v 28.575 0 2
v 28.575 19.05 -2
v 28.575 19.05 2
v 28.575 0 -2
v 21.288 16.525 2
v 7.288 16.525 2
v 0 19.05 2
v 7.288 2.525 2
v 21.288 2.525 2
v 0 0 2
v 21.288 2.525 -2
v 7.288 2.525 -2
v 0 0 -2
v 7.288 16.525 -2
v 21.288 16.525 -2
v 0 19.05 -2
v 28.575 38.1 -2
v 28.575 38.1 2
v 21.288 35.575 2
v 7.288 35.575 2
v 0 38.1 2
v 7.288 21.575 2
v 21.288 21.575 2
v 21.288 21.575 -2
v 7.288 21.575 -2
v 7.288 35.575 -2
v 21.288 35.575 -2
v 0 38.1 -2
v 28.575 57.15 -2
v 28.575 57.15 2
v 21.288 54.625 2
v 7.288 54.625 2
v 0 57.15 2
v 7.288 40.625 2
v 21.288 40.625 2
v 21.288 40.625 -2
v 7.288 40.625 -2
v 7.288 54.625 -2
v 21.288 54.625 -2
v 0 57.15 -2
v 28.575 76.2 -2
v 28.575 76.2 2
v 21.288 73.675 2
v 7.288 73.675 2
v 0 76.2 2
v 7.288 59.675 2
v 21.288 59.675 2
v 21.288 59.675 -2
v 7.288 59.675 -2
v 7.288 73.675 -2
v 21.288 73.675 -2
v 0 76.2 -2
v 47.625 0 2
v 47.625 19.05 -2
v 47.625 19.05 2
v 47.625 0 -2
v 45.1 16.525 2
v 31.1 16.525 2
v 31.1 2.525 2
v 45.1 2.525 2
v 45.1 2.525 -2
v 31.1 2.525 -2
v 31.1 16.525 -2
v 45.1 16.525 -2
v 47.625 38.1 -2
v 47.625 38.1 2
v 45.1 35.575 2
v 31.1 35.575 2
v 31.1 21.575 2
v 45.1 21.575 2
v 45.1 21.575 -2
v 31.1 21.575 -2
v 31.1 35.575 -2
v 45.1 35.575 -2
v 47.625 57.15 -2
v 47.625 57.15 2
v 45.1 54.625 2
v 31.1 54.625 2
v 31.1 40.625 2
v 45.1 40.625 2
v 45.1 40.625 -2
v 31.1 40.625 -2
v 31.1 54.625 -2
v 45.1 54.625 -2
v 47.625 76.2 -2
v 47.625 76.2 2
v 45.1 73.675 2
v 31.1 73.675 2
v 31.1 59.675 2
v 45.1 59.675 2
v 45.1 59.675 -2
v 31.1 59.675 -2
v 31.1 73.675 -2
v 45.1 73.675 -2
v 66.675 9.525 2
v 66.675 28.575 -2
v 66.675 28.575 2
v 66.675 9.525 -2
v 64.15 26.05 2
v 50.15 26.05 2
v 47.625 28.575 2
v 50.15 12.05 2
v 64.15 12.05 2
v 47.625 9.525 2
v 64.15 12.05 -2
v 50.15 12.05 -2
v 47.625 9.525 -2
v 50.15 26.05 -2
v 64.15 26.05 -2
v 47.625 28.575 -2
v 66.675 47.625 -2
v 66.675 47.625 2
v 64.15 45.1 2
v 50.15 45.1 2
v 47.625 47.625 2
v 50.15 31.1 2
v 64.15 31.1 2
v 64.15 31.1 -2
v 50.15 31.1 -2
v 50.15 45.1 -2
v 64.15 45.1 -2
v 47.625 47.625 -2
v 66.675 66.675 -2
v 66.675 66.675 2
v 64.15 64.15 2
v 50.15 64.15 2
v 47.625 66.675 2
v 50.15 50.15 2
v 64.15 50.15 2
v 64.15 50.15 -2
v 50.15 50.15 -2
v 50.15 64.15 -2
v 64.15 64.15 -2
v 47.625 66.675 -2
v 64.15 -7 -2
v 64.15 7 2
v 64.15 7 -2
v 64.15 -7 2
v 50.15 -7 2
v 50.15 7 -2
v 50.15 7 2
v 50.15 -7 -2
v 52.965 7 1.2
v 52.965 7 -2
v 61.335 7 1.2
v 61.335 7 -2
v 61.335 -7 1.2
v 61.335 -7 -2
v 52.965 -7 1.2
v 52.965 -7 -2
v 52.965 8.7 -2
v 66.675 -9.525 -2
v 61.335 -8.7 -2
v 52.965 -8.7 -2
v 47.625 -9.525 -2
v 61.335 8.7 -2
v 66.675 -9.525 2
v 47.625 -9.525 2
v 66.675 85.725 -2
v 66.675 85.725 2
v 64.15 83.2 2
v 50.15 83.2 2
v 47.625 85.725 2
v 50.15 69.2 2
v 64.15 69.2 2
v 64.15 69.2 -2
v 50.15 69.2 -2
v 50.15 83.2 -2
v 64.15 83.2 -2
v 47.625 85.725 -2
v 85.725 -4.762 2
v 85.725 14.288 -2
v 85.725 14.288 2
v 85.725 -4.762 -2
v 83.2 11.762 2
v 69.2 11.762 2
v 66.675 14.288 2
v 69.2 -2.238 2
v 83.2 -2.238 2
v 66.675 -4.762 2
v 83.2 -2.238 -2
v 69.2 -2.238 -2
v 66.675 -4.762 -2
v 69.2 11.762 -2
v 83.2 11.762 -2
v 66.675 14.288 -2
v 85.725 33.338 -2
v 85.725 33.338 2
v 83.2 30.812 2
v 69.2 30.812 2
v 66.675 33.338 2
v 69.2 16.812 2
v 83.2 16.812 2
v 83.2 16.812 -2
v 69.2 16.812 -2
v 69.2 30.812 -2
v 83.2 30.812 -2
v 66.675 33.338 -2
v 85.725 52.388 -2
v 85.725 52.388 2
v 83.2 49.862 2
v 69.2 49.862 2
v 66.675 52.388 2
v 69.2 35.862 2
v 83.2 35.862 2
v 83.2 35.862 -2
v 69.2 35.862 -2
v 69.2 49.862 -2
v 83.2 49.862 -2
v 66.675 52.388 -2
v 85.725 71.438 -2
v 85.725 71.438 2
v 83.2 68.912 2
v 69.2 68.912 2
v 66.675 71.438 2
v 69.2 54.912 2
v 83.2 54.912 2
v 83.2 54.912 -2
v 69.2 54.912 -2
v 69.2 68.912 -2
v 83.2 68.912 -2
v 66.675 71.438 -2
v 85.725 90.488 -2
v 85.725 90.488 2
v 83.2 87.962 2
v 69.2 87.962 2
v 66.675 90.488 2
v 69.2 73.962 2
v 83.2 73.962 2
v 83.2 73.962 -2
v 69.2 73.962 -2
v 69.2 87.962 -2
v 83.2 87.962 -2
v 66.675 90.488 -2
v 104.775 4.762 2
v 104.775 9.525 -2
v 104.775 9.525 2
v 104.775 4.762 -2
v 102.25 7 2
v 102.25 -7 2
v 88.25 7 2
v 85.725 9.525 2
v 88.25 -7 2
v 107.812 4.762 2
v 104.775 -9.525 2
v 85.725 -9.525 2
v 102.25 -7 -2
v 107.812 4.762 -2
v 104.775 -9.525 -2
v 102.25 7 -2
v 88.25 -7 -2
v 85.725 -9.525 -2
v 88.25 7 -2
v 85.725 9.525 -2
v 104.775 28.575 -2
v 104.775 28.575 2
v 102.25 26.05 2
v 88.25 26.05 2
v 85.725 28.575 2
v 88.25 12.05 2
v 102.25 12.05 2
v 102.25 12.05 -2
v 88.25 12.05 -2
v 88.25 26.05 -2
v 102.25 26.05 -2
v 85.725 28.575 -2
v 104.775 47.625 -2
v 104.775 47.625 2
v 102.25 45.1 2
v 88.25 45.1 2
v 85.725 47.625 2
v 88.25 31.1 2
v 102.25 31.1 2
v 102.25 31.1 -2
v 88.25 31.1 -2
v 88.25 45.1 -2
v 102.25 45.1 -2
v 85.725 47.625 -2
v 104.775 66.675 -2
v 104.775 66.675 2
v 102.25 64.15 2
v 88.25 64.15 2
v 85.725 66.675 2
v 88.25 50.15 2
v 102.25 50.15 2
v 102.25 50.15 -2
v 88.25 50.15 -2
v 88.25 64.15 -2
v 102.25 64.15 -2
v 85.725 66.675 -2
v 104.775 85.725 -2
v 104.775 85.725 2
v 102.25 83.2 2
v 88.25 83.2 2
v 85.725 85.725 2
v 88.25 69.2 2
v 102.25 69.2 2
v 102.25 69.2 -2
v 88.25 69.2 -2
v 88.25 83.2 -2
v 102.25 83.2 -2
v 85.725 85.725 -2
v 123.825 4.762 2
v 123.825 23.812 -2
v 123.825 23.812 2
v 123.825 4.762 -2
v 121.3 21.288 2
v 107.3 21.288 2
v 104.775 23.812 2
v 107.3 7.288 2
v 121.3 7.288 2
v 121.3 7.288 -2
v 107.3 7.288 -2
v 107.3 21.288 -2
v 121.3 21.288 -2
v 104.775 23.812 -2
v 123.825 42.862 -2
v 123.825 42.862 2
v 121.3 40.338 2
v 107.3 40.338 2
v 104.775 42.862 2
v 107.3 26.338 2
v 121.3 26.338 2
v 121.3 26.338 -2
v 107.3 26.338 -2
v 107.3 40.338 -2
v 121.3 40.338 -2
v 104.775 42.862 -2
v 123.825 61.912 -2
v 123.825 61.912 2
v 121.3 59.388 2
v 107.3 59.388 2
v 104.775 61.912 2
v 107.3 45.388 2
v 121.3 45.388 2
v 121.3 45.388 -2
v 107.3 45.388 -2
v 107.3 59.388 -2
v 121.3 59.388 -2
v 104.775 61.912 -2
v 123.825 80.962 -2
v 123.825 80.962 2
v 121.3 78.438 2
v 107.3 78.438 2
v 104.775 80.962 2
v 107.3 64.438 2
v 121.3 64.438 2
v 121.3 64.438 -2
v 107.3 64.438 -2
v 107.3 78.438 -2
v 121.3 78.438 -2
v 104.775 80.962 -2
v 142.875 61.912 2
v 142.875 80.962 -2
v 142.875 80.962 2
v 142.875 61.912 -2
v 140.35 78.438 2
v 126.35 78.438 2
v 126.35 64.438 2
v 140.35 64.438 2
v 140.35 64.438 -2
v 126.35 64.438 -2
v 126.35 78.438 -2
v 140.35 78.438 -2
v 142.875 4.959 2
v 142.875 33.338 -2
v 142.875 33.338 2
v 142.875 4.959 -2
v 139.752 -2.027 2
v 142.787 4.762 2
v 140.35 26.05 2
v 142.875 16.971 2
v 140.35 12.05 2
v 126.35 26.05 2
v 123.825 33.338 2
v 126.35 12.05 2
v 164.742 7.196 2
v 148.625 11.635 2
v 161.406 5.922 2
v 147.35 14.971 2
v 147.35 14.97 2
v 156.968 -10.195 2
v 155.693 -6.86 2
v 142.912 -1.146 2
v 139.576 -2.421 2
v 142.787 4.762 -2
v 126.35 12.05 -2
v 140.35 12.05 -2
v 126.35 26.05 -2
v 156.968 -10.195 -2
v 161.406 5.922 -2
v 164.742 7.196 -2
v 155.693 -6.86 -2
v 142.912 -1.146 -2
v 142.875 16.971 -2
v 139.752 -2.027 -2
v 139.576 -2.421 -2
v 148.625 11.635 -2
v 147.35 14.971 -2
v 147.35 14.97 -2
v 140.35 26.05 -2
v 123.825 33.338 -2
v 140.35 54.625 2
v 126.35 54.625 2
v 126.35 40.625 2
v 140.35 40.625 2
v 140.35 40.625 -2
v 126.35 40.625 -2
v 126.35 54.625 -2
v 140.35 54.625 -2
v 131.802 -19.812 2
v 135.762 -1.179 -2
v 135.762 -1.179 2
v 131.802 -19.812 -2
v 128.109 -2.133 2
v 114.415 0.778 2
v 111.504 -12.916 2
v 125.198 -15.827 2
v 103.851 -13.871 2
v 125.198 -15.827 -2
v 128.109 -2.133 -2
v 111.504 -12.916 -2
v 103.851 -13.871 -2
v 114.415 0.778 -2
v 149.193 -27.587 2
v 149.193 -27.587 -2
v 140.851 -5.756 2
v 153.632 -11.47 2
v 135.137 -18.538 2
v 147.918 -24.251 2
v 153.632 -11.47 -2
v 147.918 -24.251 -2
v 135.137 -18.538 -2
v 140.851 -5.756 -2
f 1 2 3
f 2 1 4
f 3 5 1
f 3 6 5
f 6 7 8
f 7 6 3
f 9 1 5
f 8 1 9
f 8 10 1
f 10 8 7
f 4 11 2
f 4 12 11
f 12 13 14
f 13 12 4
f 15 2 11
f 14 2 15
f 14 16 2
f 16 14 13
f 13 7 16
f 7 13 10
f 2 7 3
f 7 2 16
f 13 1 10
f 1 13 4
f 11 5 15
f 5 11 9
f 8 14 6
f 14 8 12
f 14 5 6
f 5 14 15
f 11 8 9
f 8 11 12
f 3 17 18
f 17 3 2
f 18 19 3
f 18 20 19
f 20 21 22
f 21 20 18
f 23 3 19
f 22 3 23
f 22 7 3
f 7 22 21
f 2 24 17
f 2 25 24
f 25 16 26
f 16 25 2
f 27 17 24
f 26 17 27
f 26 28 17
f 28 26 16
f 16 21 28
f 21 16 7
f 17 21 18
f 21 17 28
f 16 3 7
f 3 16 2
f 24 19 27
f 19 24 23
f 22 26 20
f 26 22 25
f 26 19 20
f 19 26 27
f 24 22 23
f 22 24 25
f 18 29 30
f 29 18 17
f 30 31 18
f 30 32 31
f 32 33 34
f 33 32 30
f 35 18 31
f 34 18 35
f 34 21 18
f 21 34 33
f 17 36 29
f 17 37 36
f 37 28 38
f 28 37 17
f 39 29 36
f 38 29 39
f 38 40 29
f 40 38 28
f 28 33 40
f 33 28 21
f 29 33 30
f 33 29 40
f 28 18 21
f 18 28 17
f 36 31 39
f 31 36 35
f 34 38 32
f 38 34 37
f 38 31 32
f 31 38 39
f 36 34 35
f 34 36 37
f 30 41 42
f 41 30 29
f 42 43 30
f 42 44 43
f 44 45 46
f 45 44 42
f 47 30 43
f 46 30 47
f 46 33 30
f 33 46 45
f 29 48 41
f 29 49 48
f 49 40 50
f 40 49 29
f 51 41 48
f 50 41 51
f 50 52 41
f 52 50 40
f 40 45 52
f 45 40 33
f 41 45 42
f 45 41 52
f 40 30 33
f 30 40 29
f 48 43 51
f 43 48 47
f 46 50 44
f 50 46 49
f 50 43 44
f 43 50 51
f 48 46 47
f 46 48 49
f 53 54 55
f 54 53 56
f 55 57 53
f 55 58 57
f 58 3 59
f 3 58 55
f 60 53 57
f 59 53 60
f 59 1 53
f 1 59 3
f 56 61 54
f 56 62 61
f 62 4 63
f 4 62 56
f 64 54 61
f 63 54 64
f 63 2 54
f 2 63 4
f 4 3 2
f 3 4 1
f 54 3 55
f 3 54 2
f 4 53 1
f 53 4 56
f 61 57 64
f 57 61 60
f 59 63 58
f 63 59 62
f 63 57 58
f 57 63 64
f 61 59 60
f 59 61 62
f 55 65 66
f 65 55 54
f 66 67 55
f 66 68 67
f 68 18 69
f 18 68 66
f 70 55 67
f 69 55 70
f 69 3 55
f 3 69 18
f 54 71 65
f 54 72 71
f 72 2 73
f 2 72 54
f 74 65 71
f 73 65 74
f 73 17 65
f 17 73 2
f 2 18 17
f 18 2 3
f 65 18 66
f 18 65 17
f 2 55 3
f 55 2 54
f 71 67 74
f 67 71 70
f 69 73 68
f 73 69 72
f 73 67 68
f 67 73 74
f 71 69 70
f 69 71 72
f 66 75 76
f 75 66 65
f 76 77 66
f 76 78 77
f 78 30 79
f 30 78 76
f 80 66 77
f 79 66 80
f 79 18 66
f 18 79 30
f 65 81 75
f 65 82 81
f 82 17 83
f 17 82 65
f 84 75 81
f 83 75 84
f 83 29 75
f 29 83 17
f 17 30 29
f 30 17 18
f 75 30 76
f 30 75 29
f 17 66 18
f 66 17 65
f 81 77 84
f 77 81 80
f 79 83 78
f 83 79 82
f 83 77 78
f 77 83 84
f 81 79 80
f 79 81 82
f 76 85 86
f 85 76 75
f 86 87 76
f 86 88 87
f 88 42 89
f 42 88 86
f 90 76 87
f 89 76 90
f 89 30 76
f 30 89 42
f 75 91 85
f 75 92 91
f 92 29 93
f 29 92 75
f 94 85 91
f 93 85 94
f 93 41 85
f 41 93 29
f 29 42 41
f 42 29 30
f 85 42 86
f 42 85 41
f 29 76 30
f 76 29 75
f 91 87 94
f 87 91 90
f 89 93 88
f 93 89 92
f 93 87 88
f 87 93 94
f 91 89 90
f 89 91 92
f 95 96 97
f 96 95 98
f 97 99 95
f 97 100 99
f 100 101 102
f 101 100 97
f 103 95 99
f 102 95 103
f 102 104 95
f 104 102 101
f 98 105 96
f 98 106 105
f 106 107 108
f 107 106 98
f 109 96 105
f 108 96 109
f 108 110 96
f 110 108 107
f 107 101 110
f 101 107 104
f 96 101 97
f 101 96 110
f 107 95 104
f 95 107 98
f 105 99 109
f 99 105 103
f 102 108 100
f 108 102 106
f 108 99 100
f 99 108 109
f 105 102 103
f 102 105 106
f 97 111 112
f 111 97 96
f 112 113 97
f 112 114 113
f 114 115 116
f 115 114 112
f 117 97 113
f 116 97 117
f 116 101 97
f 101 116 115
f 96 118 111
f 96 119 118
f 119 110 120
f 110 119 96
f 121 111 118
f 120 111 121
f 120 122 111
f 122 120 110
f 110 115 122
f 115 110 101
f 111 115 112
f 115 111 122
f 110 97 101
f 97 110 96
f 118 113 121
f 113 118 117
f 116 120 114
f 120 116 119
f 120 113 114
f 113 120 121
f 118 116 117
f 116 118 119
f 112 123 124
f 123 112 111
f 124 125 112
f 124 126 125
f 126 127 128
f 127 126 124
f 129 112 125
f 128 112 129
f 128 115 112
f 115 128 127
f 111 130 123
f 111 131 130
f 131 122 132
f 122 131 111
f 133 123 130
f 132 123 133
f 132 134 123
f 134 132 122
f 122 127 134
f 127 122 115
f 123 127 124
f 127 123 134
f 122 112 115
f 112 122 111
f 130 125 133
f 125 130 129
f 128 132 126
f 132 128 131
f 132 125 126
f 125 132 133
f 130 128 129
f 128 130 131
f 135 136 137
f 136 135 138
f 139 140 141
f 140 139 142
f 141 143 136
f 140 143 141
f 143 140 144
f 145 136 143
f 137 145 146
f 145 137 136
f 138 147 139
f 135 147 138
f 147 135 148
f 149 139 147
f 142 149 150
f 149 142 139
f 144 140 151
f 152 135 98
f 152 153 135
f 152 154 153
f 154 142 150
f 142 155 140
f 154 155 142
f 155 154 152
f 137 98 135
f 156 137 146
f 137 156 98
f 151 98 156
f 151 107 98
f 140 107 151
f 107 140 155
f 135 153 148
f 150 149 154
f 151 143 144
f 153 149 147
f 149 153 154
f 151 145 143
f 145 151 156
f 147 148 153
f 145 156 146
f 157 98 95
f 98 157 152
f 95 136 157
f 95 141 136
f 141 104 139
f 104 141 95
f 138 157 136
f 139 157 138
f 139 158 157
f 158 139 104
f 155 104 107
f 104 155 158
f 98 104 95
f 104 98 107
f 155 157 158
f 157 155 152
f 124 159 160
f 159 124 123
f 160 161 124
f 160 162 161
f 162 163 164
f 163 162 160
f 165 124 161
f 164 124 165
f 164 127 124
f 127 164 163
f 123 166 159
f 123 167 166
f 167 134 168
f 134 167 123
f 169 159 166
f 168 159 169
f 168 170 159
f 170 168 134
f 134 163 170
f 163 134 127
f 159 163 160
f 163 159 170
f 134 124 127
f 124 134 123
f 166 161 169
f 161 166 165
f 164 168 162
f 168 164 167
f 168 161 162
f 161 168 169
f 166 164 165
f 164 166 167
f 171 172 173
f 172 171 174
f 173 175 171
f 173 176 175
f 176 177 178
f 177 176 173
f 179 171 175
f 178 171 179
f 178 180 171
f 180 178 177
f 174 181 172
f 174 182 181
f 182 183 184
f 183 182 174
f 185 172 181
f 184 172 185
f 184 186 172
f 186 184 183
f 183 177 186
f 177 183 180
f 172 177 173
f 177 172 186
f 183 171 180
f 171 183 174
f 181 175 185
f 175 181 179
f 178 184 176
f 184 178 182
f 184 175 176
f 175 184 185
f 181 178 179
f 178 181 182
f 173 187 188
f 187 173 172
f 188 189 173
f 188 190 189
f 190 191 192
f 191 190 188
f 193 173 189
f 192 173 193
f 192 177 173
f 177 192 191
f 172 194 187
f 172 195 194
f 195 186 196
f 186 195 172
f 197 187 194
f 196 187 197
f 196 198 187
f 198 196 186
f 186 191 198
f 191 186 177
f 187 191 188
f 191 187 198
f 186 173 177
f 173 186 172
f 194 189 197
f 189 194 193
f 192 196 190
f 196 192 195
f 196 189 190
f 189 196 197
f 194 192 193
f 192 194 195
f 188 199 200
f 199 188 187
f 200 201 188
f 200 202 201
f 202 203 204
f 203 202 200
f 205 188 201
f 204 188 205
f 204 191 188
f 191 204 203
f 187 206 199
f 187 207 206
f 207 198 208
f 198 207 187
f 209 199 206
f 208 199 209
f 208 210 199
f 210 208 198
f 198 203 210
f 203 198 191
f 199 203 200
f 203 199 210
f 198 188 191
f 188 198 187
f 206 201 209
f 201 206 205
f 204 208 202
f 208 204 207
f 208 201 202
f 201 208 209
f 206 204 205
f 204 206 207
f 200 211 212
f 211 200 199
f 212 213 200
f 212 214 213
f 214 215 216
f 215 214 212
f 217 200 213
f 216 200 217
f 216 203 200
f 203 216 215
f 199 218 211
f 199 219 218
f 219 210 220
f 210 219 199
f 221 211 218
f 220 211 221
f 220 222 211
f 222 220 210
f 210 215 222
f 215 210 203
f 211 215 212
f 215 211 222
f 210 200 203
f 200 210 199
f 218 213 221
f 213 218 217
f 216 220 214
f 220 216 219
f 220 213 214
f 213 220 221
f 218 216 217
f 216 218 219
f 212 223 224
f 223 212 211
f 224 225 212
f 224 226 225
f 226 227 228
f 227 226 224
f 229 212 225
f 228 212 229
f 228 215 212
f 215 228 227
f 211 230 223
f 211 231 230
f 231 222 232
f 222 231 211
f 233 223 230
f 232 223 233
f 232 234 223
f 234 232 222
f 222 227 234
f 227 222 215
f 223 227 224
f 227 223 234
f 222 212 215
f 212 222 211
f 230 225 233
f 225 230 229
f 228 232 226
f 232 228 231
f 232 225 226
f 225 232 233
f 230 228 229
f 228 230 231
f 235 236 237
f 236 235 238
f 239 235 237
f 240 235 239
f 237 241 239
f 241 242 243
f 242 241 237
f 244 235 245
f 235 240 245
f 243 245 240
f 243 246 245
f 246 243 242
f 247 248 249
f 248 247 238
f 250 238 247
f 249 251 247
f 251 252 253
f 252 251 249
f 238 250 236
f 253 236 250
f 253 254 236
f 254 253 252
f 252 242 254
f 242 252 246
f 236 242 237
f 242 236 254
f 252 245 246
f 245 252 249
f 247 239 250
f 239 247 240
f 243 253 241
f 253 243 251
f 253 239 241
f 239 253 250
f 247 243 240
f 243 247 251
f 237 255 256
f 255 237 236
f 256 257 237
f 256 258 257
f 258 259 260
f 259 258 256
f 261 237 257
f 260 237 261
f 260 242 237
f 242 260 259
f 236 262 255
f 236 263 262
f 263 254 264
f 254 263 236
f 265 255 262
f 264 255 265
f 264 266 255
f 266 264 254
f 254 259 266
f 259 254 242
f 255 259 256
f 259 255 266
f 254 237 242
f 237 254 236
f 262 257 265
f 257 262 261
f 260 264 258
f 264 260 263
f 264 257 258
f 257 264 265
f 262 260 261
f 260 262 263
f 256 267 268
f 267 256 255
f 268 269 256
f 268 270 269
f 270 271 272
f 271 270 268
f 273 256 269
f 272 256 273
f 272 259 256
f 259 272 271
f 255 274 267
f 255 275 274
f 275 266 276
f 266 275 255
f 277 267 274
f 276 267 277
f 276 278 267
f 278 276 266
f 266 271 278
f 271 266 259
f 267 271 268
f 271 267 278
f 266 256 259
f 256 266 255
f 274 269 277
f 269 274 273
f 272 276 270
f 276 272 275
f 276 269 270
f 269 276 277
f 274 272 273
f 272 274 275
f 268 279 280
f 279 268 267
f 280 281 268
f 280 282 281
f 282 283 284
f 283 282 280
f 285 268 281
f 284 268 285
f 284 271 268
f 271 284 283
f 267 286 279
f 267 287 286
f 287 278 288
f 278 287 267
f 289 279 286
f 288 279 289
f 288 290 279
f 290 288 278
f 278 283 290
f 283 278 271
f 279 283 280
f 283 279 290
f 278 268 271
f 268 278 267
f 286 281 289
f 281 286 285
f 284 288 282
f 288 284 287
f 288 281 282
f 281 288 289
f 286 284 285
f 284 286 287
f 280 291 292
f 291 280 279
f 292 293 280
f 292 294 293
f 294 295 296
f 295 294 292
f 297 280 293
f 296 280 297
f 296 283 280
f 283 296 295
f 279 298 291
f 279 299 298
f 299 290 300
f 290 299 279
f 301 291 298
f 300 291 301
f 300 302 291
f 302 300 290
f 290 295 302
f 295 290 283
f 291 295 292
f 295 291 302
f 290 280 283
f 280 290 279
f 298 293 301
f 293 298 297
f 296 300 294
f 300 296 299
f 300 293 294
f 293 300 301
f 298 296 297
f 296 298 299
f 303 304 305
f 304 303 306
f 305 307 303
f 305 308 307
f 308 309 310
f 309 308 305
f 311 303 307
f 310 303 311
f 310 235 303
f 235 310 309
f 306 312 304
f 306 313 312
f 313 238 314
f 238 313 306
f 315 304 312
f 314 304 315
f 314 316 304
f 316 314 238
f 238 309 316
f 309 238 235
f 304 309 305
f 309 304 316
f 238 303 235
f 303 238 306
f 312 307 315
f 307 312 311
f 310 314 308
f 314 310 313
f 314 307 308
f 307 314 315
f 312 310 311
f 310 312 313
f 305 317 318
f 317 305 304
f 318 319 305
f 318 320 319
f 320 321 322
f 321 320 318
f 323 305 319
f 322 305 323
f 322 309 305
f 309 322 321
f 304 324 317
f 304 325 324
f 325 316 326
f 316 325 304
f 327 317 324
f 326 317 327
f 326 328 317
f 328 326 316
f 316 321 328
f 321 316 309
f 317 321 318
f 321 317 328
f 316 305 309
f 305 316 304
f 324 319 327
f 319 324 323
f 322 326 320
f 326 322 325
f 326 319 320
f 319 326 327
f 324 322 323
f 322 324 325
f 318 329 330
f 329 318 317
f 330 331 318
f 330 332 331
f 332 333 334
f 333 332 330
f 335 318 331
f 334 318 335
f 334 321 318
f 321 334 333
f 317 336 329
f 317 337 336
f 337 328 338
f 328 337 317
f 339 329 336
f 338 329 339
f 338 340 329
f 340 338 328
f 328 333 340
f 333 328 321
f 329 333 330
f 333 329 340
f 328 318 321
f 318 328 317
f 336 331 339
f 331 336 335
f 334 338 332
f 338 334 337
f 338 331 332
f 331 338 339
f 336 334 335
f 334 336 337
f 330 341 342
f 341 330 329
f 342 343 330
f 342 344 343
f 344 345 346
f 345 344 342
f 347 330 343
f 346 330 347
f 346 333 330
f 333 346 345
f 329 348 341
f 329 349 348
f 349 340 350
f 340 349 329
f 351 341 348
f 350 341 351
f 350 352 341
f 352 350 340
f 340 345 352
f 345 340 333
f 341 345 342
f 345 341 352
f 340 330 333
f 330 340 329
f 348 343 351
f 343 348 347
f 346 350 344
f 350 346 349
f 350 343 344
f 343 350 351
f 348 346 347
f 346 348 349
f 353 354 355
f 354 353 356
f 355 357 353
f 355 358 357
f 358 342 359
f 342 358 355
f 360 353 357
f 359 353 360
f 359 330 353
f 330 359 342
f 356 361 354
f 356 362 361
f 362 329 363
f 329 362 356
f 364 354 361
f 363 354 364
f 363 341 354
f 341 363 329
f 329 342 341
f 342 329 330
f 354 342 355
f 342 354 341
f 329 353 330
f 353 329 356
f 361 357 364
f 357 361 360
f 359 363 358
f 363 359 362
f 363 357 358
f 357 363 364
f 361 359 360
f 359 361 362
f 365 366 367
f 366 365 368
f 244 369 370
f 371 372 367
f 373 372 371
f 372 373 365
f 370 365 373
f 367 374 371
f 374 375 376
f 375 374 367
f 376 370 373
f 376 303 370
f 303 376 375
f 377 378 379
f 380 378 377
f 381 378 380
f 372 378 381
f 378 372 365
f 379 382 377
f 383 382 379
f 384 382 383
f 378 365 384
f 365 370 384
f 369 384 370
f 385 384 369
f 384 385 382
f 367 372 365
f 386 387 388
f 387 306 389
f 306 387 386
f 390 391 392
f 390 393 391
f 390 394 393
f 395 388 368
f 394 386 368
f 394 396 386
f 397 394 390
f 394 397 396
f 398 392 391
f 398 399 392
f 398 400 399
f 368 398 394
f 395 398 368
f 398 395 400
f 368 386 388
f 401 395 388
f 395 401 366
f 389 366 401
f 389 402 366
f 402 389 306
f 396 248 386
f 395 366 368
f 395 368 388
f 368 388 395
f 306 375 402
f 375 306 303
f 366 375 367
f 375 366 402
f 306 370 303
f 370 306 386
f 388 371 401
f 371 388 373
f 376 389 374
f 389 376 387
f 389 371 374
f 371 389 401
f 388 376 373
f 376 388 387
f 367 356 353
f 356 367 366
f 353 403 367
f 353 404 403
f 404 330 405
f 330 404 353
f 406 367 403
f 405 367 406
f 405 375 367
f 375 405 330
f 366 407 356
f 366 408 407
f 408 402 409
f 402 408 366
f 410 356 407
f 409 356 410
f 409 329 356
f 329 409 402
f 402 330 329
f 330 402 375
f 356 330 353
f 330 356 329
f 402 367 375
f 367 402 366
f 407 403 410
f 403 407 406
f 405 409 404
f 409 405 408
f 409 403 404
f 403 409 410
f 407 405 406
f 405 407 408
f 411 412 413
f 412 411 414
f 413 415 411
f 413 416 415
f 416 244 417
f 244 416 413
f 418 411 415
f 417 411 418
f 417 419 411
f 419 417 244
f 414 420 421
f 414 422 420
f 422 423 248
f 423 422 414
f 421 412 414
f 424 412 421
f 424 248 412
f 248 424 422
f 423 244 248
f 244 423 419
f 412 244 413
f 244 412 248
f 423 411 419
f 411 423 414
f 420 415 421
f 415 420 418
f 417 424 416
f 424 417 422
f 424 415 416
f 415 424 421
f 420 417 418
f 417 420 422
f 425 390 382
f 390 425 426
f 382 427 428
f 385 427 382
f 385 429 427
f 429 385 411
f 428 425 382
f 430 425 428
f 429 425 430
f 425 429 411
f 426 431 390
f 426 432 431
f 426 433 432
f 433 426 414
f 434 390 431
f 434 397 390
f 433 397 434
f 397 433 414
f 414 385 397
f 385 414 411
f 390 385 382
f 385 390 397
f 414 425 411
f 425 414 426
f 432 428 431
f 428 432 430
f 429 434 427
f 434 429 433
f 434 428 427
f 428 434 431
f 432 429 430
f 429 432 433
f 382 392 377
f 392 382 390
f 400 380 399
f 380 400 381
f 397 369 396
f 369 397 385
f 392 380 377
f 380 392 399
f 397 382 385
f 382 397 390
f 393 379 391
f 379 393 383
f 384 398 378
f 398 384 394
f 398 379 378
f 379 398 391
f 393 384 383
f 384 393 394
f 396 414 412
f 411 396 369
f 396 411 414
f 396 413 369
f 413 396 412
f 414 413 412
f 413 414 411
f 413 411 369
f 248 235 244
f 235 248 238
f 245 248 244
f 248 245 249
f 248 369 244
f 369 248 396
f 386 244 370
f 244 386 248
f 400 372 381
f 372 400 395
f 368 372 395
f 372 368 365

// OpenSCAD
// Generated by SolidPython 1.1.1 on 2021-05-21 16:25:21


union() {
	cube(size = 0);
	translate(v = [14.2875000000, 0, 0]) {
		translate(v = [0, 0.0000000000, 0]) {
			union() {
				cube(size = 0);
				translate(v = [0, 9.5250000000, 0]) {
					difference() {
						cube(center = true, size = [28.5750000000, 19.0500000000, 4]);
						cube(center = true, size = [14, 14, 4.2000000000]);
					}
				}
				translate(v = [0, 28.5750000000, 0]) {
					difference() {
						cube(center = true, size = [28.5750000000, 19.0500000000, 4]);
						cube(center = true, size = [14, 14, 4.2000000000]);
					}
				}
				translate(v = [0, 47.6250000000, 0]) {
					difference() {
						cube(center = true, size = [28.5750000000, 19.0500000000, 4]);
						cube(center = true, size = [14, 14, 4.2000000000]);
					}
				}
				translate(v = [0, 66.6750000000, 0]) {
					difference() {
						cube(center = true, size = [28.5750000000, 19.0500000000, 4]);
						cube(center = true, size = [14, 14, 4.2000000000]);
					}
				}
			}
		}
	}
	translate(v = [38.1000000000, 0, 0]) {
		translate(v = [0, 0.0000000000, 0]) {
			union() {
				cube(size = 0);
				translate(v = [0, 9.5250000000, 0]) {
					difference() {
						cube(center = true, size = [19.0500000000, 19.0500000000, 4]);
						cube(center = true, size = [14, 14, 4.2000000000]);
					}
				}
				translate(v = [0, 28.5750000000, 0]) {
					difference() {
						cube(center = true, size = [19.0500000000, 19.0500000000, 4]);
						cube(center = true, size = [14, 14, 4.2000000000]);
					}
				}
				translate(v = [0, 47.6250000000, 0]) {
					difference() {
						cube(center = true, size = [19.0500000000, 19.0500000000, 4]);
						cube(center = true, size = [14, 14, 4.2000000000]);
					}
				}
				translate(v = [0, 66.6750000000, 0]) {
					difference() {
						cube(center = true, size = [19.0500000000, 19.0500000000, 4]);
						cube(center = true, size = [14, 14, 4.2000000000]);
					}
				}
			}
		}
	}
	translate(v = [57.1500000000, 0, 0]) {
		translate(v = [0, -9.5250000000, 0]) {
			union() {
				cube(size = 0);
				translate(v = [0, 9.5250000000, 0]) {
					difference() {
						cube(center = true, size = [19.0500000000, 19.0500000000, 4]);
						union() {
							cube(center = true, size = [14, 14, 4.2000000000]);
							translate(v = [0, 0, -2.0000000000]) {
								polyhedron(convexity = 5, faces = [[3, 2, 1, 0], [4, 5, 6, 7], [0, 1, 5, 4], [1, 2, 6, 5], [2, 3, 7, 6], [3, 0, 4, 7]], points = [[-4.1850000000, 8.7000000000, 0], [4.1850000000, 8.7000000000, 0], [4.1850000000, -8.7000000000, 0], [-4.1850000000, -8.7000000000, 0], [-4.1850000000, 7.0000000000, 3.2000000000], [4.1850000000, 7.0000000000, 3.2000000000], [4.1850000000, -7.0000000000, 3.2000000000], [-4.1850000000, -7.0000000000, 3.2000000000]]);
							}
						}
					}
				}
				translate(v = [0, 28.5750000000, 0]) {
					difference() {
						cube(center = true, size = [19.0500000000, 19.0500000000, 4]);
						cube(center = true, size = [14, 14, 4.2000000000]);
					}
				}
				translate(v = [0, 47.6250000000, 0]) {
					difference() {
						cube(center = true, size = [19.0500000000, 19.0500000000, 4]);
						cube(center = true, size = [14, 14, 4.2000000000]);
					}
				}
				translate(v = [0, 66.6750000000, 0]) {
					difference() {
						cube(center = true, size = [19.0500000000, 19.0500000000, 4]);
						cube(center = true, size = [14, 14, 4.2000000000]);
					}
				}
				translate(v = [0, 85.7250000000, 0]) {
					difference() {
						cube(center = true, size = [19.0500000000, 19.0500000000, 4]);
						cube(center = true, size = [14, 14, 4.2000000000]);
					}
				}
			}
		}
	}
	translate(v = [76.2000000000, 0, 0]) {
		translate(v = [0, -4.7625000000, 0]) {
			union() {
				cube(size = 0);
				translate(v = [0, 9.5250000000, 0]) {
					difference() {
						cube(center = true, size = [19.0500000000, 19.0500000000, 4]);
						cube(center = true, size = [14, 14, 4.2000000000]);
					}
				}
				translate(v = [0, 28.5750000000, 0]) {
					difference() {
						cube(center = true, size = [19.0500000000, 19.0500000000, 4]);
						cube(center = true, size = [14, 14, 4.2000000000]);
					}
				}
				translate(v = [0, 47.6250000000, 0]) {
					difference() {
						cube(center = true, size = [19.0500000000, 19.0500000000, 4]);
						cube(center = true, size = [14, 14, 4.2000000000]);
					}
				}
				translate(v = [0, 66.6750000000, 0]) {
					difference() {
						cube(center = true, size = [19.0500000000, 19.0500000000, 4]);
						cube(center = true, size = [14, 14, 4.2000000000]);
					}
				}
				translate(v = [0, 85.7250000000, 0]) {
					difference() {
						cube(center = true, size = [19.0500000000, 19.0500000000, 4]);
						cube(center = true, size = [14, 14, 4.2000000000]);
					}
				}
			}
		}
	}
	translate(v = [95.2500000000, 0, 0]) {
		translate(v = [0, -9.5250000000, 0]) {
			union() {
				cube(size = 0);
				translate(v = [0, 9.5250000000, 0]) {
					difference() {
						cube(center = true, size = [19.0500000000, 19.0500000000, 4]);
						cube(center = true, size = [14, 14, 4.2000000000]);
					}
				}
				translate(v = [0, 28.5750000000, 0]) {
					difference() {
						cube(center = true, size = [19.0500000000, 19.0500000000, 4]);
						cube(center = true, size = [14, 14, 4.2000000000]);
					}
				}
				translate(v = [0, 47.6250000000, 0]) {
					difference() {
						cube(center = true, size = [19.0500000000, 19.0500000000, 4]);
						cube(center = true, size = [14, 14, 4.2000000000]);
					}
				}
				translate(v = [0, 66.6750000000, 0]) {
					difference() {
						cube(center = true, size = [19.0500000000, 19.0500000000, 4]);
						cube(center = true, size = [14, 14, 4.2000000000]);
					}
				}
				translate(v = [0, 85.7250000000, 0]) {
					difference() {
						cube(center = true, size = [19.0500000000, 19.0500000000, 4]);
						cube(center = true, size = [14, 14, 4.2000000000]);
					}
				}
			}
		}
	}
	translate(v = [114.3000000000, 0, 0]) {
		translate(v = [0, 4.7625000000, 0]) {
			union() {
				cube(size = 0);
				translate(v = [0, 9.5250000000, 0]) {
					difference() {
						cube(center = true, size = [19.0500000000, 19.0500000000, 4]);
						cube(center = true, size = [14, 14, 4.2000000000]);
					}
				}
				translate(v = [0, 28.5750000000, 0]) {
					difference() {
						cube(center = true, size = [19.0500000000, 19.0500000000, 4]);
						cube(center = true, size = [14, 14, 4.2000000000]);
					}
				}
				translate(v = [0, 47.6250000000, 0]) {
					difference() {
						cube(center = true, size = [19.0500000000, 19.0500000000, 4]);
						cube(center = true, size = [14, 14, 4.2000000000]);
					}
				}
				translate(v = [0, 66.6750000000, 0]) {
					difference() {
						cube(center = true, size = [19.0500000000, 19.0500000000, 4]);
						cube(center = true, size = [14, 14, 4.2000000000]);
					}
				}
			}
		}
	}
	translate(v = [133.3500000000, 0, 0]) {
		translate(v = [0, 4.7625000000, 0]) {
			union() {
				cube(size = 0);
				translate(v = [0, 14.2875000000, 0]) {
					difference() {
						cube(center = true, size = [19.0500000000, 28.5750000000, 4]);
						cube(center = true, size = [14, 14, 4.2000000000]);
					}
				}
				translate(v = [0, 42.8625000000, 0]) {
					difference() {
						cube(center = true, size = [19.0500000000, 28.5750000000, 4]);
						cube(center = true, size = [14, 14, 4.2000000000]);
					}
				}
				translate(v = [0, 66.6750000000, 0]) {
					difference() {
						cube(center = true, size = [19.0500000000, 19.0500000000, 4]);
						cube(center = true, size = [14, 14, 4.2000000000]);
					}
				}
			}
		}
	}
	translate(v = [104.7750000000, 0, 0]) {
		translate(v = [0, 4.7625000000, 0]) {
			polyhedron(convexity = 5, faces = [[0, 2, 1], [0, 1, 4, 3], [1, 2, 5, 4], [2, 0, 3, 5], [3, 4, 5]], points = [[0, 0, -2.0000000000], [3.0369018749, 0, -2.0000000000], [0, -14.2875000000, -2.0000000000], [0, 0, 2.0000000000], [3.0369018749, 0, 2.0000000000], [0, -14.2875000000, 2.0000000000]]);
		}
	}
	translate(v = [107.8119018749, 0, 0]) {
		translate(v = [0, 4.7625000000, 0]) {
			rotate(a = 12.0000000000, v = [0, 0, -1]) {
				union() {
					translate(v = [28.5750000000, 0, 0]) {
						translate(v = [-14.2875000000, 0, 0]) {
							translate(v = [0, -9.5250000000, 0]) {
								difference() {
									cube(center = true, size = [28.5750000000, 19.0500000000, 4]);
									cube(center = true, size = [14, 14, 4.2000000000]);
								}
							}
						}
					}
					translate(v = [0, -19.0500000000, 0]) {
						translate(v = [28.5750000000, 0, 0]) {
							polyhedron(convexity = 5, faces = [[0, 2, 1], [0, 1, 4, 3], [1, 2, 5, 4], [2, 0, 3, 5], [3, 4, 5]], points = [[0, 0, -2.0000000000], [4.0789901917, 19.0500000000, -2.0000000000], [0, 19.0500000000, -2.0000000000], [0, 0, 2.0000000000], [4.0789901917, 19.0500000000, 2.0000000000], [0, 19.0500000000, 2.0000000000]]);
						}
					}
					translate(v = [0, -19.0500000000, 0]) {
						translate(v = [28.5750000000, 0, 0]) {
							rotate(a = 12.0856909360, v = [0, 0, -1]) {
								translate(v = [9.5250000000, 0, 0]) {
									union() {
										cube(size = 0);
										translate(v = [0, 9.5250000000, 0]) {
											difference() {
												cube(center = true, size = [19.0500000000, 19.0500000000, 4]);
												cube(center = true, size = [14, 14, 4.2000000000]);
											}
										}
										translate(v = [0, 28.5750000000, 0]) {
											difference() {
												cube(center = true, size = [19.0500000000, 19.0500000000, 4]);
												cube(center = true, size = [14, 14, 4.2000000000]);
											}
										}
									}
								}
							}
						}
					}
				}
			}
		}
	}
	translate(v = [104.7750000000, 0, 0]) {
		translate(v = [0, 4.7625000000, 0]) {
			polyhedron(convexity = 5, faces = [[0, 2, 1], [0, 1, 4, 3], [1, 2, 5, 4], [2, 0, 3, 5], [3, 4, 5]], points = [[3.0369018749, 0, -2.0000000000], [34.9773240353, -6.7891463127, -2.0000000000], [38.1000000000, 0, -2.0000000000], [3.0369018749, 0, 2.0000000000], [34.9773240353, -6.7891463127, 2.0000000000], [38.1000000000, 0, 2.0000000000]]);
		}
	}
	translate(v = [142.8750000000, 0, 0]) {
		translate(v = [0, 4.7625000000, 0]) {
			polyhedron(convexity = 5, faces = [[0, 2, 1], [0, 1, 4, 3], [1, 2, 5, 4], [2, 0, 3, 5], [3, 4, 5]], points = [[0, 0, -2.0000000000], [4.5484401413, 10.1749819254, -2.0000000000], [0, 12.2082344532, -2.0000000000], [0, 0, 2.0000000000], [4.5484401413, 10.1749819254, 2.0000000000], [0, 12.2082344532, 2.0000000000]]);
		}
	}
}
